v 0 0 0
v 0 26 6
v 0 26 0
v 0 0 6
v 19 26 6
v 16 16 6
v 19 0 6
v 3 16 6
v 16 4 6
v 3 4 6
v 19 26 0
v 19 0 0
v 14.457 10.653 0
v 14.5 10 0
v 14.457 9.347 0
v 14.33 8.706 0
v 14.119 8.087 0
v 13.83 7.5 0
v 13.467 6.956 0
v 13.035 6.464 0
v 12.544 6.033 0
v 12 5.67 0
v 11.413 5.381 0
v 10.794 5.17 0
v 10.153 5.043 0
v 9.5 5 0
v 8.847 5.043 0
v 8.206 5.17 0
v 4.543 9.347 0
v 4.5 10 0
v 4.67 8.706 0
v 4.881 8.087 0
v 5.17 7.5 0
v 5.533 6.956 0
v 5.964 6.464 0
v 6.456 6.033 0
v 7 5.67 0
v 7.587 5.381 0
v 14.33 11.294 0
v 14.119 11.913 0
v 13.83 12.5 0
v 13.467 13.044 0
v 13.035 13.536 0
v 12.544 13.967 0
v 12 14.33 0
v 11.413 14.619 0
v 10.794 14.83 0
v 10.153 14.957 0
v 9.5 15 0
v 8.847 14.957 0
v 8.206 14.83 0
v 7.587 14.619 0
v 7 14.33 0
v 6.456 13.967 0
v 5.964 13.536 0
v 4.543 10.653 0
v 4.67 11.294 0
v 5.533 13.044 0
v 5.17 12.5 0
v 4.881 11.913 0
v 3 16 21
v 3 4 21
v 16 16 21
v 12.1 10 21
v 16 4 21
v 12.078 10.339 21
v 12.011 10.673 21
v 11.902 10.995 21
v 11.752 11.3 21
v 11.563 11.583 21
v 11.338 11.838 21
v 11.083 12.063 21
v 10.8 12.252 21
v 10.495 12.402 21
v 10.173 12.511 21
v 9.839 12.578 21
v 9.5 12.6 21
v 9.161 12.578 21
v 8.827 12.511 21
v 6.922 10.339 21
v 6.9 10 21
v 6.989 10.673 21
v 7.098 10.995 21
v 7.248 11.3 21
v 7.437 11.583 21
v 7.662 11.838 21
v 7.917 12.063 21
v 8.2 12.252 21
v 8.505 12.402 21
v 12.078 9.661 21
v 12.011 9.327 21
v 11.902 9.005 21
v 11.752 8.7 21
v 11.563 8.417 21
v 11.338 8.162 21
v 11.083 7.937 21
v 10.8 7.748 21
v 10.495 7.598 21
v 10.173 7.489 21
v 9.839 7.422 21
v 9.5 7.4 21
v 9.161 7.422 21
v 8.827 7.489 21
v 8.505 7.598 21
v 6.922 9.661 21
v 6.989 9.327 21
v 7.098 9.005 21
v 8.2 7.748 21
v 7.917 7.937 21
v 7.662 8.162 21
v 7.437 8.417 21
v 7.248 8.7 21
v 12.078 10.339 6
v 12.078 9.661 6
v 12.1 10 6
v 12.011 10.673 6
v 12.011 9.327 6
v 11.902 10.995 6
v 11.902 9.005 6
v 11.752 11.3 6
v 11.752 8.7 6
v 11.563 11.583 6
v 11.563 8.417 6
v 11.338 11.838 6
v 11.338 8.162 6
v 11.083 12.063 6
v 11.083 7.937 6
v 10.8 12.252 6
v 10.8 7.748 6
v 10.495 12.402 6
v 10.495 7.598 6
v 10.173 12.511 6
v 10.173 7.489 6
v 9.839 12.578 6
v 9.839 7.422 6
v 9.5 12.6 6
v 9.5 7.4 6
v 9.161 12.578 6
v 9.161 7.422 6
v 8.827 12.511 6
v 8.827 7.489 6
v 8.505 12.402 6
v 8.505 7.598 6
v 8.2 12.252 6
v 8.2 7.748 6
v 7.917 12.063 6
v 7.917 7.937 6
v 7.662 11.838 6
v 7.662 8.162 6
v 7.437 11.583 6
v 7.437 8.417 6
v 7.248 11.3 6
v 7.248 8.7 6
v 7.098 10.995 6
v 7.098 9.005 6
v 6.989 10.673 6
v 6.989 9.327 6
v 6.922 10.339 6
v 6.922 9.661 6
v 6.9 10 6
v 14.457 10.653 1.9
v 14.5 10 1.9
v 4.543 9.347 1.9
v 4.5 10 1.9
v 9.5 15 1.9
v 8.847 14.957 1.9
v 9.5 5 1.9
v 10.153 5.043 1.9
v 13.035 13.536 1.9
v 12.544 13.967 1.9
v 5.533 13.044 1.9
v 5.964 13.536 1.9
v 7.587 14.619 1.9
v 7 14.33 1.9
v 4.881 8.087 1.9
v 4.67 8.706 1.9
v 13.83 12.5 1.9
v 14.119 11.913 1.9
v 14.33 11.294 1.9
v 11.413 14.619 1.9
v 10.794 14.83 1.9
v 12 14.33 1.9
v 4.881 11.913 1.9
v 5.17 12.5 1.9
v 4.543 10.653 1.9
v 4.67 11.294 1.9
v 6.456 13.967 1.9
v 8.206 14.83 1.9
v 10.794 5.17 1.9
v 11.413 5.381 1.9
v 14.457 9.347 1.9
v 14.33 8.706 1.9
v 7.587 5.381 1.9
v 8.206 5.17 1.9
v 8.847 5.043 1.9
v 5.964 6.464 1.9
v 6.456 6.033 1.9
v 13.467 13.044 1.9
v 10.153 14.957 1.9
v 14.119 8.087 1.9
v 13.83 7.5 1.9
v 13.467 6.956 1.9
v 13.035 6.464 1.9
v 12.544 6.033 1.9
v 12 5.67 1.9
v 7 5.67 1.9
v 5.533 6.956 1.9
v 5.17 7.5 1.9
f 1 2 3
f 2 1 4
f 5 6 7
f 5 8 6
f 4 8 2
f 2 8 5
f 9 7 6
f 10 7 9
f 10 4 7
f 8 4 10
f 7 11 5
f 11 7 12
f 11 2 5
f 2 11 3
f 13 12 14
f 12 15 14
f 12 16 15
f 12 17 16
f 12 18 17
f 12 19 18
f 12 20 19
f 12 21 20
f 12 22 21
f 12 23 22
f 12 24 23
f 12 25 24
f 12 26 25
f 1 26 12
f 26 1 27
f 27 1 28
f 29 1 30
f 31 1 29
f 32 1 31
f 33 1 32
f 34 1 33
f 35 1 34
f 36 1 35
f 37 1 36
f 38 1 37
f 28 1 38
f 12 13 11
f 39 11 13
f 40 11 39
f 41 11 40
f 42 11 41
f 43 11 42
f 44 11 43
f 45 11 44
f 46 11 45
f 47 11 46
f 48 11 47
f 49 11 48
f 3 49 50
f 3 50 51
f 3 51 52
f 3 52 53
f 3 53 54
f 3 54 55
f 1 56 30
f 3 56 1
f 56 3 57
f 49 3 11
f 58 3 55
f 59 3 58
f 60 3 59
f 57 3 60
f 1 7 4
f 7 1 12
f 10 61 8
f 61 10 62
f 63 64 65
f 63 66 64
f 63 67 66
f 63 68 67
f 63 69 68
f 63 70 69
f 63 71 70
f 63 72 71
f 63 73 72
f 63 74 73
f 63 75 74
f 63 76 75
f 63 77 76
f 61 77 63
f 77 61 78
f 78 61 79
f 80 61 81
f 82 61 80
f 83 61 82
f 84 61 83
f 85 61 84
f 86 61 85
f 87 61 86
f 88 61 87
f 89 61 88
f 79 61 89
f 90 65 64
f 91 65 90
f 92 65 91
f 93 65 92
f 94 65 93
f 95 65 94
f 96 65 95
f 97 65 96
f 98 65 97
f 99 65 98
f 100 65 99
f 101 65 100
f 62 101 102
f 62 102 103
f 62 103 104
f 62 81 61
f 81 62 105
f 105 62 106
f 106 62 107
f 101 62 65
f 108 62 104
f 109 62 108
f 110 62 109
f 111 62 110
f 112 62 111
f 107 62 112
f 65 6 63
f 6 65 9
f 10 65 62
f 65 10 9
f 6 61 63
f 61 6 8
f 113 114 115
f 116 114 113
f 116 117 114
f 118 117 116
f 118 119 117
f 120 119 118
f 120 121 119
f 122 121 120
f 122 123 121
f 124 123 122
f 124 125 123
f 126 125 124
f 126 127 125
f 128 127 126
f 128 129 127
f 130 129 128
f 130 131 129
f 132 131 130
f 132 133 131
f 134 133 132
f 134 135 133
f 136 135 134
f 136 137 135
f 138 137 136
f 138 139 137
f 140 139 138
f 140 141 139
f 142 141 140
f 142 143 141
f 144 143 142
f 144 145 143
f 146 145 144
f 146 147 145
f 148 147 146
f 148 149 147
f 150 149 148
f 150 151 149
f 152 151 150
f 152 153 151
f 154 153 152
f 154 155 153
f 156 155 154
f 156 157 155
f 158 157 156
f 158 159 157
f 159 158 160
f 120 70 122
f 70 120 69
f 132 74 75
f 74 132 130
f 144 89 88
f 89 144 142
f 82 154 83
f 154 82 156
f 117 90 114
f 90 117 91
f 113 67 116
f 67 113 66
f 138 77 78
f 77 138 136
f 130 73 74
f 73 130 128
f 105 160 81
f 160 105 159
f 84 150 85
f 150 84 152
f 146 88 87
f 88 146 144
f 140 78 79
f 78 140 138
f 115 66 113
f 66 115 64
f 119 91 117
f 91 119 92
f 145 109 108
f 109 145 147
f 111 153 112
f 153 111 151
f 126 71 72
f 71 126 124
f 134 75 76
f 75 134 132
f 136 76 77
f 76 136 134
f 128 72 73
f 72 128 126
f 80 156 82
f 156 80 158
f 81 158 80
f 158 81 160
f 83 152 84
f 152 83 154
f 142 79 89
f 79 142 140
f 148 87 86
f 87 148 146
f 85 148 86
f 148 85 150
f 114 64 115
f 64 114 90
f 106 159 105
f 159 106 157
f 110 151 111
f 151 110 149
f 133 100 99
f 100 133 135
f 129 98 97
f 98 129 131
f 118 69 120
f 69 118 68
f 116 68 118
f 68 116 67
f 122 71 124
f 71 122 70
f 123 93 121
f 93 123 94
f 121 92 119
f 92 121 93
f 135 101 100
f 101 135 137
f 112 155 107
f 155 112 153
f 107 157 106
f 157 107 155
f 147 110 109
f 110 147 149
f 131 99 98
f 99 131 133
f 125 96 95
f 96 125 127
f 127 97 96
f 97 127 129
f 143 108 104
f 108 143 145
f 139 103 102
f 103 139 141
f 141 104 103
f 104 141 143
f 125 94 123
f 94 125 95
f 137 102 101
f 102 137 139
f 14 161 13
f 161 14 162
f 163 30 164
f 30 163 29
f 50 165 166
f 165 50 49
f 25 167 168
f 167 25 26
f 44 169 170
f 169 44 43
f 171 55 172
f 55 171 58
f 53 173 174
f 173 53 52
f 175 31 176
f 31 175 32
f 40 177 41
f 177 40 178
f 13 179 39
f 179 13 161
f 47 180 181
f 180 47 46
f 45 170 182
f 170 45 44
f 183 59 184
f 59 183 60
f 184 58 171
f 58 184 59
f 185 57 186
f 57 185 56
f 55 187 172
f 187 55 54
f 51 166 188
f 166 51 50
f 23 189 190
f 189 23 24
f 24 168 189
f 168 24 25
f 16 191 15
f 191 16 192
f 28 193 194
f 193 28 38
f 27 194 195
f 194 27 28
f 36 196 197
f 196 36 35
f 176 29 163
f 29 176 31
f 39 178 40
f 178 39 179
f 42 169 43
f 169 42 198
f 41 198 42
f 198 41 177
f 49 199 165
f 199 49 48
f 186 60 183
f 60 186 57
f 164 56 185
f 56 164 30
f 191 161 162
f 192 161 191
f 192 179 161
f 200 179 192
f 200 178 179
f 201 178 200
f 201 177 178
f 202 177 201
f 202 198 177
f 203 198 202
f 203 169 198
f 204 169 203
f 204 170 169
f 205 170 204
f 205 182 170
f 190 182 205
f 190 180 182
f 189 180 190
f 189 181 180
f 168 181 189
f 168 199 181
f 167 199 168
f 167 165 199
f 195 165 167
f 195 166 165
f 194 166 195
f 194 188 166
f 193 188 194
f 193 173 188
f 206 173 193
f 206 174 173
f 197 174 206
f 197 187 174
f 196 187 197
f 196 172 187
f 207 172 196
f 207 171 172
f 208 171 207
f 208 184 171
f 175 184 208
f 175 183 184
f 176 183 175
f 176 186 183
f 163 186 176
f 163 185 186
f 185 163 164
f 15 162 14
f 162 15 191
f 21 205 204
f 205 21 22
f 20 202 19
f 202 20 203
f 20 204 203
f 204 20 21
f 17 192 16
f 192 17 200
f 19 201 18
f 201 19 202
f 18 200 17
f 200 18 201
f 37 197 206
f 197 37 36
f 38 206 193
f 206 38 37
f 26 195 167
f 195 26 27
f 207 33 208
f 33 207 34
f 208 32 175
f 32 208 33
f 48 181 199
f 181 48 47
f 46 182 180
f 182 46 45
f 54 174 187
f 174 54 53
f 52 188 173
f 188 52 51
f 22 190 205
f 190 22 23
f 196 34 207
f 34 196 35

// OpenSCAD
// force_plate.scad — a DIY vertical-GRF force plate you print on the H2D.
// 4x bar load cells (e.g. 50 kg each = 200 kg / ~2000 N capacity) sit at the corners
// between a printed/plywood TOP and 4 printed FEET. The top floats on the cells and
// deflects them; each cell -> an HX711 -> per-corner force -> total vGRF + center of
// pressure (firmware/force_plate). Validated DIY load-cell rigs reach ICC>0.94 vs a lab
// force plate. Tune the params below to YOUR load cells (measure them).
//
// Print: PETG (stiff, a bit of give) or PLA. Feet 100% infill (they carry load).
// Render F6 -> export foot() (x4) and, if you don't use plywood, top_plate().

$fn = 48;

// ---- load cell (bar / single-point type) — MEASURE yours ----
LC_len       = 80;   // body length (mm)
LC_w         = 13;   // width
LC_h         = 13;   // height
LC_hole_d    = 5.2;  // mounting hole diameter (M5 clearance)
LC_hole_off  = 6;    // hole centre from each end
LC_free_gap  = 2.0;  // air gap so the free end can deflect (do NOT bottom out)

PLATE        = 240;  // top plate size (mm square); use plywood/acrylic to save print time
PLATE_T      = 6;    // printed top thickness (if not plywood)
WALL         = 3;

// A FOOT: clamps the FIXED end of a bar cell to the ground; the free end overhangs
// toward the plate centre with a clearance gap.
module foot() {
    difference() {
        union() {
            cube([LC_w + 2*WALL, LC_hole_off*2 + 14, 6]);              // ground pad
            translate([WALL, 4, 6]) cube([LC_w, LC_hole_off + 6, LC_h + LC_free_gap]); // riser
        }
        // fixed-end mounting hole (through the riser)
        translate([WALL + LC_w/2, 4 + LC_hole_off, 6])
            cylinder(d = LC_hole_d, h = LC_h + LC_free_gap + 2);
        // rubber-foot pocket underneath (grip)
        translate([(LC_w + 2*WALL)/2, LC_hole_off + 4, -0.1]) cylinder(d = 10, h = 2);
    }
}

// A TOP CONTACT boss: bolts to the FREE end of the cell and presses up on the plate.
module top_boss() {
    difference() {
        cube([LC_w, 16, 10]);
        translate([LC_w/2, 8, -0.1]) cylinder(d = LC_hole_d, h = 12);
    }
}

// Optional printed TOP PLATE with 4 corner pockets for the top bosses.
module top_plate() {
    difference() {
        cube([PLATE, PLATE, PLATE_T]);
        for (x = [18, PLATE-18-LC_w], y = [18, PLATE-18-16])
            translate([x, y, PLATE_T-3]) cube([LC_w+1, 17, 4]);   // boss pockets (glue bosses in)
    }
    // grip rim so a person doesn't slide off
    difference() {
        cube([PLATE, PLATE, 2]); translate([WALL, WALL, -0.1]) cube([PLATE-2*WALL, PLATE-2*WALL, 3]);
    }
}

// ---- what gets rendered (uncomment one to export) ----
foot();                                   // print x4
// translate([0,60,0]) top_boss();        // print x4
// translate([0,120,0]) top_plate();      // or use plywood/acrylic
